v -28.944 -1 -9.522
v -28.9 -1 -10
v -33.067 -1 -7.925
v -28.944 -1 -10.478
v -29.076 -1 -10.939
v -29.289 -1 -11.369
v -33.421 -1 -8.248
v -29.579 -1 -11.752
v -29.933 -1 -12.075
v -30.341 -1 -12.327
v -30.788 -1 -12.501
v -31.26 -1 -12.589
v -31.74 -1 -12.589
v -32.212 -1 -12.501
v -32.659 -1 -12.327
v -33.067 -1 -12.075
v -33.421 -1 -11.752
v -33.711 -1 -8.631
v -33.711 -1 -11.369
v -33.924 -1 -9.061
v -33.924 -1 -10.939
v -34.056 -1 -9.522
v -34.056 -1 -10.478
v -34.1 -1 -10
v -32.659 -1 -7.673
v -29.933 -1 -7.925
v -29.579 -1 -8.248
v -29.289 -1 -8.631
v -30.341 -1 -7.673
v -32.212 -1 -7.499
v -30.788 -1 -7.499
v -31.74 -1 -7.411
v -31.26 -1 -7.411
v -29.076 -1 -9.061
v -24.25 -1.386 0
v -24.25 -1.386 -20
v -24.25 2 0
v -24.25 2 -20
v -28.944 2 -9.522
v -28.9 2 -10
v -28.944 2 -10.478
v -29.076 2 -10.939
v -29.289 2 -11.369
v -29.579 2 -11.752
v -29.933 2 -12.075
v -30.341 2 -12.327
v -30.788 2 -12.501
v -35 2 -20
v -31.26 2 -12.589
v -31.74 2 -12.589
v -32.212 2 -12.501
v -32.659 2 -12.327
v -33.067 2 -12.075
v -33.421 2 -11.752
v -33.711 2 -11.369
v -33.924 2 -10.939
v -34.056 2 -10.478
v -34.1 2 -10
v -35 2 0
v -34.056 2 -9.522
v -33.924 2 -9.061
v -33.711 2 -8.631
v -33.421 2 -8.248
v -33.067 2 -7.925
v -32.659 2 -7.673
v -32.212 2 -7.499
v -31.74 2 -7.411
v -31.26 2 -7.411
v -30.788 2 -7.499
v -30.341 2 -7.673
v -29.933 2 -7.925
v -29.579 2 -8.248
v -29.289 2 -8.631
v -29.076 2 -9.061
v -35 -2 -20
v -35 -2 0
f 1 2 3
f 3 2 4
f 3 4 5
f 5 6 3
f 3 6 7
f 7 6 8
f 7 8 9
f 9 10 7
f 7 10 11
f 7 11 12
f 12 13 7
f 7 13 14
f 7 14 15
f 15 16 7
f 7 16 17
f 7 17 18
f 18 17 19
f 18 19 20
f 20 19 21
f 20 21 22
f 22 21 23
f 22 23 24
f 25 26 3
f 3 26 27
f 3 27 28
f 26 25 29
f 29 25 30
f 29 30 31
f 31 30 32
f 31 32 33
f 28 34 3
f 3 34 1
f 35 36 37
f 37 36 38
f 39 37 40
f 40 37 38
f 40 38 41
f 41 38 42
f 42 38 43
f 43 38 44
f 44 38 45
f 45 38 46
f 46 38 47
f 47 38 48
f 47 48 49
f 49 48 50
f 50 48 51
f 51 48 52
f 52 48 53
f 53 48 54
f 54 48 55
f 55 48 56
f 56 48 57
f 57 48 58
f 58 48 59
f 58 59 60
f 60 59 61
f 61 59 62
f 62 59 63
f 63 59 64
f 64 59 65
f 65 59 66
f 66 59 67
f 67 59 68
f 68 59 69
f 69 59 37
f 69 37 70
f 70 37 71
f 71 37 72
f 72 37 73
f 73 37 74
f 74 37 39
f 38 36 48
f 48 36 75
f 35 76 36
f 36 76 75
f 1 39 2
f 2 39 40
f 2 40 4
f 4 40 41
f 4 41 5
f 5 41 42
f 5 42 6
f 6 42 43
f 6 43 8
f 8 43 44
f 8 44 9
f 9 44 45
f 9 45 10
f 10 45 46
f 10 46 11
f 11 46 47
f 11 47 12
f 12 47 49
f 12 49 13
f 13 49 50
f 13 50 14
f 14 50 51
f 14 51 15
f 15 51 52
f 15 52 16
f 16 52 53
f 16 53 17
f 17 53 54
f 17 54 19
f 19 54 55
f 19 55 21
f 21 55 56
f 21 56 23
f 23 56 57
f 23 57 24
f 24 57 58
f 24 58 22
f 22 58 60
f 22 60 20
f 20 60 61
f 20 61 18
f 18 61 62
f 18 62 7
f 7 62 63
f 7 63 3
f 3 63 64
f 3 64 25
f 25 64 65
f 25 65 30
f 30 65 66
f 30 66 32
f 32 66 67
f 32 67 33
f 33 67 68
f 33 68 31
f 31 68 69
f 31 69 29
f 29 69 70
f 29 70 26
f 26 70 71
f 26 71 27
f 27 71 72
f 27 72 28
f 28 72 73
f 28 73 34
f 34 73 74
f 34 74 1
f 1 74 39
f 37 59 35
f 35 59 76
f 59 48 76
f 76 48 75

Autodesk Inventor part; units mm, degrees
ref_plane "YZ Plane" through (0, 0, 0) normal (1, 0, 0) x (0, 1, 0)
ref_plane "XZ Plane" through (0, 0, 0) normal (0, 1, 0) x (-1, 0, 0)
ref_plane "XY Plane" through (0, 0, 0) normal (0, 0, 1) x (1, 0, 0)
sketch "Sketch1" plane through (0, 0, 0) normal (0, 1, 0) x (-1, 0, 0)
  line L0 (0, 0) -> (35, 0)
  line L1 (35, 0) -> (35, -20)
  line L2 (35, -20) -> (0, -20)
  line L3 (0, -20) -> (0, 0)
  dimension "d0" = 35
  dimension "d1" = 20
extrude "Extrusion1" add sketch "Sketch1" along normal blind 2
sketch "Sketch2" plane through (0, 2, 0) normal (0, 1, 0) x (1, 0, 0)
  line L0 (-35, 20) -> (-35, 0) projected
  line L1 (-35, 10) -> (-31.5, 10)
  circle A0 centre (-31.5, 10) radius 2.6
  point P0 (0, 0)
  dimension "d4" = 3.5
  dimension "d5" = 5.2
extrude "Extrusion2" cut sketch "Sketch2" against normal blind 2
sketch "Sketch3" plane through (-35, 0, 0) normal (0, 0, 1) x (1, 0, 0)
  line L0 (35, 0) -> (0, 0) projected
  line L1 (0, 0) -> (0, -2)
  line L2 (0, -2) -> (35, 0)
  dimension "d8" = 2
extrude "Extrusion3" add sketch "Sketch3" against normal up to surface (20 mm away)
sketch "Sketch4" plane through (0, 2, 0) normal (1, 0, 0) x (0, 0, -1)
  line L0 (0, -2) -> (20, -2) projected
  line L1 (0, -2) -> (20, -2)
  line L2 (20, -2) -> (20, 6.5769)
  line L3 (20, 6.5769) -> (0, 6.5769)
  line L4 (0, 6.5769) -> (0, -2)
extrude "Extrusion4" cut sketch "Sketch4" against normal blind 23.75
sketch "Sketch5" plane through (0, 0, 0) normal (0, 1, 0) x (1, 0, 0)
  line L0 (-23.75, 20) -> (-35, 20) projected
  line L1 (-23.75, 20) -> (0, 20)
  line L2 (0, 20) -> (0, 0)
  line L3 (0, 0) -> (-23.75, 0)
  line L4 (-23.75, 0) -> (-23.75, 20)
extrude "Extrusion5" cut sketch "Sketch5" against normal through all
sketch "Sketch6" plane through (-23.75, 2, 0) normal (1, 0, 0) x (0, 0, -1)
  line L0 (20, -4) -> (20, 0) projected
  line L1 (20, 0) -> (0, 0)
  line L2 (0, 0) -> (0, -8.1158)
  line L3 (0, -8.1158) -> (20, -8.1158)
  line L4 (20, -8.1158) -> (20, 0)
  point P0 (0, -2)
extrude "Extrusion6" cut sketch "Sketch6" against normal blind 0.5
sketch "Sketch7" plane through (-31.5, 0, -10) normal (0, 1, 0) x (1, 0, 0)
  circle A0 centre (0, 0) radius 2.6
  point P0 (31.5, -10)
  dimension "d19" = 5.2
extrude "Extrusion7" cut sketch "Sketch7" against normal blind 1
properties part number "opaska_test"
